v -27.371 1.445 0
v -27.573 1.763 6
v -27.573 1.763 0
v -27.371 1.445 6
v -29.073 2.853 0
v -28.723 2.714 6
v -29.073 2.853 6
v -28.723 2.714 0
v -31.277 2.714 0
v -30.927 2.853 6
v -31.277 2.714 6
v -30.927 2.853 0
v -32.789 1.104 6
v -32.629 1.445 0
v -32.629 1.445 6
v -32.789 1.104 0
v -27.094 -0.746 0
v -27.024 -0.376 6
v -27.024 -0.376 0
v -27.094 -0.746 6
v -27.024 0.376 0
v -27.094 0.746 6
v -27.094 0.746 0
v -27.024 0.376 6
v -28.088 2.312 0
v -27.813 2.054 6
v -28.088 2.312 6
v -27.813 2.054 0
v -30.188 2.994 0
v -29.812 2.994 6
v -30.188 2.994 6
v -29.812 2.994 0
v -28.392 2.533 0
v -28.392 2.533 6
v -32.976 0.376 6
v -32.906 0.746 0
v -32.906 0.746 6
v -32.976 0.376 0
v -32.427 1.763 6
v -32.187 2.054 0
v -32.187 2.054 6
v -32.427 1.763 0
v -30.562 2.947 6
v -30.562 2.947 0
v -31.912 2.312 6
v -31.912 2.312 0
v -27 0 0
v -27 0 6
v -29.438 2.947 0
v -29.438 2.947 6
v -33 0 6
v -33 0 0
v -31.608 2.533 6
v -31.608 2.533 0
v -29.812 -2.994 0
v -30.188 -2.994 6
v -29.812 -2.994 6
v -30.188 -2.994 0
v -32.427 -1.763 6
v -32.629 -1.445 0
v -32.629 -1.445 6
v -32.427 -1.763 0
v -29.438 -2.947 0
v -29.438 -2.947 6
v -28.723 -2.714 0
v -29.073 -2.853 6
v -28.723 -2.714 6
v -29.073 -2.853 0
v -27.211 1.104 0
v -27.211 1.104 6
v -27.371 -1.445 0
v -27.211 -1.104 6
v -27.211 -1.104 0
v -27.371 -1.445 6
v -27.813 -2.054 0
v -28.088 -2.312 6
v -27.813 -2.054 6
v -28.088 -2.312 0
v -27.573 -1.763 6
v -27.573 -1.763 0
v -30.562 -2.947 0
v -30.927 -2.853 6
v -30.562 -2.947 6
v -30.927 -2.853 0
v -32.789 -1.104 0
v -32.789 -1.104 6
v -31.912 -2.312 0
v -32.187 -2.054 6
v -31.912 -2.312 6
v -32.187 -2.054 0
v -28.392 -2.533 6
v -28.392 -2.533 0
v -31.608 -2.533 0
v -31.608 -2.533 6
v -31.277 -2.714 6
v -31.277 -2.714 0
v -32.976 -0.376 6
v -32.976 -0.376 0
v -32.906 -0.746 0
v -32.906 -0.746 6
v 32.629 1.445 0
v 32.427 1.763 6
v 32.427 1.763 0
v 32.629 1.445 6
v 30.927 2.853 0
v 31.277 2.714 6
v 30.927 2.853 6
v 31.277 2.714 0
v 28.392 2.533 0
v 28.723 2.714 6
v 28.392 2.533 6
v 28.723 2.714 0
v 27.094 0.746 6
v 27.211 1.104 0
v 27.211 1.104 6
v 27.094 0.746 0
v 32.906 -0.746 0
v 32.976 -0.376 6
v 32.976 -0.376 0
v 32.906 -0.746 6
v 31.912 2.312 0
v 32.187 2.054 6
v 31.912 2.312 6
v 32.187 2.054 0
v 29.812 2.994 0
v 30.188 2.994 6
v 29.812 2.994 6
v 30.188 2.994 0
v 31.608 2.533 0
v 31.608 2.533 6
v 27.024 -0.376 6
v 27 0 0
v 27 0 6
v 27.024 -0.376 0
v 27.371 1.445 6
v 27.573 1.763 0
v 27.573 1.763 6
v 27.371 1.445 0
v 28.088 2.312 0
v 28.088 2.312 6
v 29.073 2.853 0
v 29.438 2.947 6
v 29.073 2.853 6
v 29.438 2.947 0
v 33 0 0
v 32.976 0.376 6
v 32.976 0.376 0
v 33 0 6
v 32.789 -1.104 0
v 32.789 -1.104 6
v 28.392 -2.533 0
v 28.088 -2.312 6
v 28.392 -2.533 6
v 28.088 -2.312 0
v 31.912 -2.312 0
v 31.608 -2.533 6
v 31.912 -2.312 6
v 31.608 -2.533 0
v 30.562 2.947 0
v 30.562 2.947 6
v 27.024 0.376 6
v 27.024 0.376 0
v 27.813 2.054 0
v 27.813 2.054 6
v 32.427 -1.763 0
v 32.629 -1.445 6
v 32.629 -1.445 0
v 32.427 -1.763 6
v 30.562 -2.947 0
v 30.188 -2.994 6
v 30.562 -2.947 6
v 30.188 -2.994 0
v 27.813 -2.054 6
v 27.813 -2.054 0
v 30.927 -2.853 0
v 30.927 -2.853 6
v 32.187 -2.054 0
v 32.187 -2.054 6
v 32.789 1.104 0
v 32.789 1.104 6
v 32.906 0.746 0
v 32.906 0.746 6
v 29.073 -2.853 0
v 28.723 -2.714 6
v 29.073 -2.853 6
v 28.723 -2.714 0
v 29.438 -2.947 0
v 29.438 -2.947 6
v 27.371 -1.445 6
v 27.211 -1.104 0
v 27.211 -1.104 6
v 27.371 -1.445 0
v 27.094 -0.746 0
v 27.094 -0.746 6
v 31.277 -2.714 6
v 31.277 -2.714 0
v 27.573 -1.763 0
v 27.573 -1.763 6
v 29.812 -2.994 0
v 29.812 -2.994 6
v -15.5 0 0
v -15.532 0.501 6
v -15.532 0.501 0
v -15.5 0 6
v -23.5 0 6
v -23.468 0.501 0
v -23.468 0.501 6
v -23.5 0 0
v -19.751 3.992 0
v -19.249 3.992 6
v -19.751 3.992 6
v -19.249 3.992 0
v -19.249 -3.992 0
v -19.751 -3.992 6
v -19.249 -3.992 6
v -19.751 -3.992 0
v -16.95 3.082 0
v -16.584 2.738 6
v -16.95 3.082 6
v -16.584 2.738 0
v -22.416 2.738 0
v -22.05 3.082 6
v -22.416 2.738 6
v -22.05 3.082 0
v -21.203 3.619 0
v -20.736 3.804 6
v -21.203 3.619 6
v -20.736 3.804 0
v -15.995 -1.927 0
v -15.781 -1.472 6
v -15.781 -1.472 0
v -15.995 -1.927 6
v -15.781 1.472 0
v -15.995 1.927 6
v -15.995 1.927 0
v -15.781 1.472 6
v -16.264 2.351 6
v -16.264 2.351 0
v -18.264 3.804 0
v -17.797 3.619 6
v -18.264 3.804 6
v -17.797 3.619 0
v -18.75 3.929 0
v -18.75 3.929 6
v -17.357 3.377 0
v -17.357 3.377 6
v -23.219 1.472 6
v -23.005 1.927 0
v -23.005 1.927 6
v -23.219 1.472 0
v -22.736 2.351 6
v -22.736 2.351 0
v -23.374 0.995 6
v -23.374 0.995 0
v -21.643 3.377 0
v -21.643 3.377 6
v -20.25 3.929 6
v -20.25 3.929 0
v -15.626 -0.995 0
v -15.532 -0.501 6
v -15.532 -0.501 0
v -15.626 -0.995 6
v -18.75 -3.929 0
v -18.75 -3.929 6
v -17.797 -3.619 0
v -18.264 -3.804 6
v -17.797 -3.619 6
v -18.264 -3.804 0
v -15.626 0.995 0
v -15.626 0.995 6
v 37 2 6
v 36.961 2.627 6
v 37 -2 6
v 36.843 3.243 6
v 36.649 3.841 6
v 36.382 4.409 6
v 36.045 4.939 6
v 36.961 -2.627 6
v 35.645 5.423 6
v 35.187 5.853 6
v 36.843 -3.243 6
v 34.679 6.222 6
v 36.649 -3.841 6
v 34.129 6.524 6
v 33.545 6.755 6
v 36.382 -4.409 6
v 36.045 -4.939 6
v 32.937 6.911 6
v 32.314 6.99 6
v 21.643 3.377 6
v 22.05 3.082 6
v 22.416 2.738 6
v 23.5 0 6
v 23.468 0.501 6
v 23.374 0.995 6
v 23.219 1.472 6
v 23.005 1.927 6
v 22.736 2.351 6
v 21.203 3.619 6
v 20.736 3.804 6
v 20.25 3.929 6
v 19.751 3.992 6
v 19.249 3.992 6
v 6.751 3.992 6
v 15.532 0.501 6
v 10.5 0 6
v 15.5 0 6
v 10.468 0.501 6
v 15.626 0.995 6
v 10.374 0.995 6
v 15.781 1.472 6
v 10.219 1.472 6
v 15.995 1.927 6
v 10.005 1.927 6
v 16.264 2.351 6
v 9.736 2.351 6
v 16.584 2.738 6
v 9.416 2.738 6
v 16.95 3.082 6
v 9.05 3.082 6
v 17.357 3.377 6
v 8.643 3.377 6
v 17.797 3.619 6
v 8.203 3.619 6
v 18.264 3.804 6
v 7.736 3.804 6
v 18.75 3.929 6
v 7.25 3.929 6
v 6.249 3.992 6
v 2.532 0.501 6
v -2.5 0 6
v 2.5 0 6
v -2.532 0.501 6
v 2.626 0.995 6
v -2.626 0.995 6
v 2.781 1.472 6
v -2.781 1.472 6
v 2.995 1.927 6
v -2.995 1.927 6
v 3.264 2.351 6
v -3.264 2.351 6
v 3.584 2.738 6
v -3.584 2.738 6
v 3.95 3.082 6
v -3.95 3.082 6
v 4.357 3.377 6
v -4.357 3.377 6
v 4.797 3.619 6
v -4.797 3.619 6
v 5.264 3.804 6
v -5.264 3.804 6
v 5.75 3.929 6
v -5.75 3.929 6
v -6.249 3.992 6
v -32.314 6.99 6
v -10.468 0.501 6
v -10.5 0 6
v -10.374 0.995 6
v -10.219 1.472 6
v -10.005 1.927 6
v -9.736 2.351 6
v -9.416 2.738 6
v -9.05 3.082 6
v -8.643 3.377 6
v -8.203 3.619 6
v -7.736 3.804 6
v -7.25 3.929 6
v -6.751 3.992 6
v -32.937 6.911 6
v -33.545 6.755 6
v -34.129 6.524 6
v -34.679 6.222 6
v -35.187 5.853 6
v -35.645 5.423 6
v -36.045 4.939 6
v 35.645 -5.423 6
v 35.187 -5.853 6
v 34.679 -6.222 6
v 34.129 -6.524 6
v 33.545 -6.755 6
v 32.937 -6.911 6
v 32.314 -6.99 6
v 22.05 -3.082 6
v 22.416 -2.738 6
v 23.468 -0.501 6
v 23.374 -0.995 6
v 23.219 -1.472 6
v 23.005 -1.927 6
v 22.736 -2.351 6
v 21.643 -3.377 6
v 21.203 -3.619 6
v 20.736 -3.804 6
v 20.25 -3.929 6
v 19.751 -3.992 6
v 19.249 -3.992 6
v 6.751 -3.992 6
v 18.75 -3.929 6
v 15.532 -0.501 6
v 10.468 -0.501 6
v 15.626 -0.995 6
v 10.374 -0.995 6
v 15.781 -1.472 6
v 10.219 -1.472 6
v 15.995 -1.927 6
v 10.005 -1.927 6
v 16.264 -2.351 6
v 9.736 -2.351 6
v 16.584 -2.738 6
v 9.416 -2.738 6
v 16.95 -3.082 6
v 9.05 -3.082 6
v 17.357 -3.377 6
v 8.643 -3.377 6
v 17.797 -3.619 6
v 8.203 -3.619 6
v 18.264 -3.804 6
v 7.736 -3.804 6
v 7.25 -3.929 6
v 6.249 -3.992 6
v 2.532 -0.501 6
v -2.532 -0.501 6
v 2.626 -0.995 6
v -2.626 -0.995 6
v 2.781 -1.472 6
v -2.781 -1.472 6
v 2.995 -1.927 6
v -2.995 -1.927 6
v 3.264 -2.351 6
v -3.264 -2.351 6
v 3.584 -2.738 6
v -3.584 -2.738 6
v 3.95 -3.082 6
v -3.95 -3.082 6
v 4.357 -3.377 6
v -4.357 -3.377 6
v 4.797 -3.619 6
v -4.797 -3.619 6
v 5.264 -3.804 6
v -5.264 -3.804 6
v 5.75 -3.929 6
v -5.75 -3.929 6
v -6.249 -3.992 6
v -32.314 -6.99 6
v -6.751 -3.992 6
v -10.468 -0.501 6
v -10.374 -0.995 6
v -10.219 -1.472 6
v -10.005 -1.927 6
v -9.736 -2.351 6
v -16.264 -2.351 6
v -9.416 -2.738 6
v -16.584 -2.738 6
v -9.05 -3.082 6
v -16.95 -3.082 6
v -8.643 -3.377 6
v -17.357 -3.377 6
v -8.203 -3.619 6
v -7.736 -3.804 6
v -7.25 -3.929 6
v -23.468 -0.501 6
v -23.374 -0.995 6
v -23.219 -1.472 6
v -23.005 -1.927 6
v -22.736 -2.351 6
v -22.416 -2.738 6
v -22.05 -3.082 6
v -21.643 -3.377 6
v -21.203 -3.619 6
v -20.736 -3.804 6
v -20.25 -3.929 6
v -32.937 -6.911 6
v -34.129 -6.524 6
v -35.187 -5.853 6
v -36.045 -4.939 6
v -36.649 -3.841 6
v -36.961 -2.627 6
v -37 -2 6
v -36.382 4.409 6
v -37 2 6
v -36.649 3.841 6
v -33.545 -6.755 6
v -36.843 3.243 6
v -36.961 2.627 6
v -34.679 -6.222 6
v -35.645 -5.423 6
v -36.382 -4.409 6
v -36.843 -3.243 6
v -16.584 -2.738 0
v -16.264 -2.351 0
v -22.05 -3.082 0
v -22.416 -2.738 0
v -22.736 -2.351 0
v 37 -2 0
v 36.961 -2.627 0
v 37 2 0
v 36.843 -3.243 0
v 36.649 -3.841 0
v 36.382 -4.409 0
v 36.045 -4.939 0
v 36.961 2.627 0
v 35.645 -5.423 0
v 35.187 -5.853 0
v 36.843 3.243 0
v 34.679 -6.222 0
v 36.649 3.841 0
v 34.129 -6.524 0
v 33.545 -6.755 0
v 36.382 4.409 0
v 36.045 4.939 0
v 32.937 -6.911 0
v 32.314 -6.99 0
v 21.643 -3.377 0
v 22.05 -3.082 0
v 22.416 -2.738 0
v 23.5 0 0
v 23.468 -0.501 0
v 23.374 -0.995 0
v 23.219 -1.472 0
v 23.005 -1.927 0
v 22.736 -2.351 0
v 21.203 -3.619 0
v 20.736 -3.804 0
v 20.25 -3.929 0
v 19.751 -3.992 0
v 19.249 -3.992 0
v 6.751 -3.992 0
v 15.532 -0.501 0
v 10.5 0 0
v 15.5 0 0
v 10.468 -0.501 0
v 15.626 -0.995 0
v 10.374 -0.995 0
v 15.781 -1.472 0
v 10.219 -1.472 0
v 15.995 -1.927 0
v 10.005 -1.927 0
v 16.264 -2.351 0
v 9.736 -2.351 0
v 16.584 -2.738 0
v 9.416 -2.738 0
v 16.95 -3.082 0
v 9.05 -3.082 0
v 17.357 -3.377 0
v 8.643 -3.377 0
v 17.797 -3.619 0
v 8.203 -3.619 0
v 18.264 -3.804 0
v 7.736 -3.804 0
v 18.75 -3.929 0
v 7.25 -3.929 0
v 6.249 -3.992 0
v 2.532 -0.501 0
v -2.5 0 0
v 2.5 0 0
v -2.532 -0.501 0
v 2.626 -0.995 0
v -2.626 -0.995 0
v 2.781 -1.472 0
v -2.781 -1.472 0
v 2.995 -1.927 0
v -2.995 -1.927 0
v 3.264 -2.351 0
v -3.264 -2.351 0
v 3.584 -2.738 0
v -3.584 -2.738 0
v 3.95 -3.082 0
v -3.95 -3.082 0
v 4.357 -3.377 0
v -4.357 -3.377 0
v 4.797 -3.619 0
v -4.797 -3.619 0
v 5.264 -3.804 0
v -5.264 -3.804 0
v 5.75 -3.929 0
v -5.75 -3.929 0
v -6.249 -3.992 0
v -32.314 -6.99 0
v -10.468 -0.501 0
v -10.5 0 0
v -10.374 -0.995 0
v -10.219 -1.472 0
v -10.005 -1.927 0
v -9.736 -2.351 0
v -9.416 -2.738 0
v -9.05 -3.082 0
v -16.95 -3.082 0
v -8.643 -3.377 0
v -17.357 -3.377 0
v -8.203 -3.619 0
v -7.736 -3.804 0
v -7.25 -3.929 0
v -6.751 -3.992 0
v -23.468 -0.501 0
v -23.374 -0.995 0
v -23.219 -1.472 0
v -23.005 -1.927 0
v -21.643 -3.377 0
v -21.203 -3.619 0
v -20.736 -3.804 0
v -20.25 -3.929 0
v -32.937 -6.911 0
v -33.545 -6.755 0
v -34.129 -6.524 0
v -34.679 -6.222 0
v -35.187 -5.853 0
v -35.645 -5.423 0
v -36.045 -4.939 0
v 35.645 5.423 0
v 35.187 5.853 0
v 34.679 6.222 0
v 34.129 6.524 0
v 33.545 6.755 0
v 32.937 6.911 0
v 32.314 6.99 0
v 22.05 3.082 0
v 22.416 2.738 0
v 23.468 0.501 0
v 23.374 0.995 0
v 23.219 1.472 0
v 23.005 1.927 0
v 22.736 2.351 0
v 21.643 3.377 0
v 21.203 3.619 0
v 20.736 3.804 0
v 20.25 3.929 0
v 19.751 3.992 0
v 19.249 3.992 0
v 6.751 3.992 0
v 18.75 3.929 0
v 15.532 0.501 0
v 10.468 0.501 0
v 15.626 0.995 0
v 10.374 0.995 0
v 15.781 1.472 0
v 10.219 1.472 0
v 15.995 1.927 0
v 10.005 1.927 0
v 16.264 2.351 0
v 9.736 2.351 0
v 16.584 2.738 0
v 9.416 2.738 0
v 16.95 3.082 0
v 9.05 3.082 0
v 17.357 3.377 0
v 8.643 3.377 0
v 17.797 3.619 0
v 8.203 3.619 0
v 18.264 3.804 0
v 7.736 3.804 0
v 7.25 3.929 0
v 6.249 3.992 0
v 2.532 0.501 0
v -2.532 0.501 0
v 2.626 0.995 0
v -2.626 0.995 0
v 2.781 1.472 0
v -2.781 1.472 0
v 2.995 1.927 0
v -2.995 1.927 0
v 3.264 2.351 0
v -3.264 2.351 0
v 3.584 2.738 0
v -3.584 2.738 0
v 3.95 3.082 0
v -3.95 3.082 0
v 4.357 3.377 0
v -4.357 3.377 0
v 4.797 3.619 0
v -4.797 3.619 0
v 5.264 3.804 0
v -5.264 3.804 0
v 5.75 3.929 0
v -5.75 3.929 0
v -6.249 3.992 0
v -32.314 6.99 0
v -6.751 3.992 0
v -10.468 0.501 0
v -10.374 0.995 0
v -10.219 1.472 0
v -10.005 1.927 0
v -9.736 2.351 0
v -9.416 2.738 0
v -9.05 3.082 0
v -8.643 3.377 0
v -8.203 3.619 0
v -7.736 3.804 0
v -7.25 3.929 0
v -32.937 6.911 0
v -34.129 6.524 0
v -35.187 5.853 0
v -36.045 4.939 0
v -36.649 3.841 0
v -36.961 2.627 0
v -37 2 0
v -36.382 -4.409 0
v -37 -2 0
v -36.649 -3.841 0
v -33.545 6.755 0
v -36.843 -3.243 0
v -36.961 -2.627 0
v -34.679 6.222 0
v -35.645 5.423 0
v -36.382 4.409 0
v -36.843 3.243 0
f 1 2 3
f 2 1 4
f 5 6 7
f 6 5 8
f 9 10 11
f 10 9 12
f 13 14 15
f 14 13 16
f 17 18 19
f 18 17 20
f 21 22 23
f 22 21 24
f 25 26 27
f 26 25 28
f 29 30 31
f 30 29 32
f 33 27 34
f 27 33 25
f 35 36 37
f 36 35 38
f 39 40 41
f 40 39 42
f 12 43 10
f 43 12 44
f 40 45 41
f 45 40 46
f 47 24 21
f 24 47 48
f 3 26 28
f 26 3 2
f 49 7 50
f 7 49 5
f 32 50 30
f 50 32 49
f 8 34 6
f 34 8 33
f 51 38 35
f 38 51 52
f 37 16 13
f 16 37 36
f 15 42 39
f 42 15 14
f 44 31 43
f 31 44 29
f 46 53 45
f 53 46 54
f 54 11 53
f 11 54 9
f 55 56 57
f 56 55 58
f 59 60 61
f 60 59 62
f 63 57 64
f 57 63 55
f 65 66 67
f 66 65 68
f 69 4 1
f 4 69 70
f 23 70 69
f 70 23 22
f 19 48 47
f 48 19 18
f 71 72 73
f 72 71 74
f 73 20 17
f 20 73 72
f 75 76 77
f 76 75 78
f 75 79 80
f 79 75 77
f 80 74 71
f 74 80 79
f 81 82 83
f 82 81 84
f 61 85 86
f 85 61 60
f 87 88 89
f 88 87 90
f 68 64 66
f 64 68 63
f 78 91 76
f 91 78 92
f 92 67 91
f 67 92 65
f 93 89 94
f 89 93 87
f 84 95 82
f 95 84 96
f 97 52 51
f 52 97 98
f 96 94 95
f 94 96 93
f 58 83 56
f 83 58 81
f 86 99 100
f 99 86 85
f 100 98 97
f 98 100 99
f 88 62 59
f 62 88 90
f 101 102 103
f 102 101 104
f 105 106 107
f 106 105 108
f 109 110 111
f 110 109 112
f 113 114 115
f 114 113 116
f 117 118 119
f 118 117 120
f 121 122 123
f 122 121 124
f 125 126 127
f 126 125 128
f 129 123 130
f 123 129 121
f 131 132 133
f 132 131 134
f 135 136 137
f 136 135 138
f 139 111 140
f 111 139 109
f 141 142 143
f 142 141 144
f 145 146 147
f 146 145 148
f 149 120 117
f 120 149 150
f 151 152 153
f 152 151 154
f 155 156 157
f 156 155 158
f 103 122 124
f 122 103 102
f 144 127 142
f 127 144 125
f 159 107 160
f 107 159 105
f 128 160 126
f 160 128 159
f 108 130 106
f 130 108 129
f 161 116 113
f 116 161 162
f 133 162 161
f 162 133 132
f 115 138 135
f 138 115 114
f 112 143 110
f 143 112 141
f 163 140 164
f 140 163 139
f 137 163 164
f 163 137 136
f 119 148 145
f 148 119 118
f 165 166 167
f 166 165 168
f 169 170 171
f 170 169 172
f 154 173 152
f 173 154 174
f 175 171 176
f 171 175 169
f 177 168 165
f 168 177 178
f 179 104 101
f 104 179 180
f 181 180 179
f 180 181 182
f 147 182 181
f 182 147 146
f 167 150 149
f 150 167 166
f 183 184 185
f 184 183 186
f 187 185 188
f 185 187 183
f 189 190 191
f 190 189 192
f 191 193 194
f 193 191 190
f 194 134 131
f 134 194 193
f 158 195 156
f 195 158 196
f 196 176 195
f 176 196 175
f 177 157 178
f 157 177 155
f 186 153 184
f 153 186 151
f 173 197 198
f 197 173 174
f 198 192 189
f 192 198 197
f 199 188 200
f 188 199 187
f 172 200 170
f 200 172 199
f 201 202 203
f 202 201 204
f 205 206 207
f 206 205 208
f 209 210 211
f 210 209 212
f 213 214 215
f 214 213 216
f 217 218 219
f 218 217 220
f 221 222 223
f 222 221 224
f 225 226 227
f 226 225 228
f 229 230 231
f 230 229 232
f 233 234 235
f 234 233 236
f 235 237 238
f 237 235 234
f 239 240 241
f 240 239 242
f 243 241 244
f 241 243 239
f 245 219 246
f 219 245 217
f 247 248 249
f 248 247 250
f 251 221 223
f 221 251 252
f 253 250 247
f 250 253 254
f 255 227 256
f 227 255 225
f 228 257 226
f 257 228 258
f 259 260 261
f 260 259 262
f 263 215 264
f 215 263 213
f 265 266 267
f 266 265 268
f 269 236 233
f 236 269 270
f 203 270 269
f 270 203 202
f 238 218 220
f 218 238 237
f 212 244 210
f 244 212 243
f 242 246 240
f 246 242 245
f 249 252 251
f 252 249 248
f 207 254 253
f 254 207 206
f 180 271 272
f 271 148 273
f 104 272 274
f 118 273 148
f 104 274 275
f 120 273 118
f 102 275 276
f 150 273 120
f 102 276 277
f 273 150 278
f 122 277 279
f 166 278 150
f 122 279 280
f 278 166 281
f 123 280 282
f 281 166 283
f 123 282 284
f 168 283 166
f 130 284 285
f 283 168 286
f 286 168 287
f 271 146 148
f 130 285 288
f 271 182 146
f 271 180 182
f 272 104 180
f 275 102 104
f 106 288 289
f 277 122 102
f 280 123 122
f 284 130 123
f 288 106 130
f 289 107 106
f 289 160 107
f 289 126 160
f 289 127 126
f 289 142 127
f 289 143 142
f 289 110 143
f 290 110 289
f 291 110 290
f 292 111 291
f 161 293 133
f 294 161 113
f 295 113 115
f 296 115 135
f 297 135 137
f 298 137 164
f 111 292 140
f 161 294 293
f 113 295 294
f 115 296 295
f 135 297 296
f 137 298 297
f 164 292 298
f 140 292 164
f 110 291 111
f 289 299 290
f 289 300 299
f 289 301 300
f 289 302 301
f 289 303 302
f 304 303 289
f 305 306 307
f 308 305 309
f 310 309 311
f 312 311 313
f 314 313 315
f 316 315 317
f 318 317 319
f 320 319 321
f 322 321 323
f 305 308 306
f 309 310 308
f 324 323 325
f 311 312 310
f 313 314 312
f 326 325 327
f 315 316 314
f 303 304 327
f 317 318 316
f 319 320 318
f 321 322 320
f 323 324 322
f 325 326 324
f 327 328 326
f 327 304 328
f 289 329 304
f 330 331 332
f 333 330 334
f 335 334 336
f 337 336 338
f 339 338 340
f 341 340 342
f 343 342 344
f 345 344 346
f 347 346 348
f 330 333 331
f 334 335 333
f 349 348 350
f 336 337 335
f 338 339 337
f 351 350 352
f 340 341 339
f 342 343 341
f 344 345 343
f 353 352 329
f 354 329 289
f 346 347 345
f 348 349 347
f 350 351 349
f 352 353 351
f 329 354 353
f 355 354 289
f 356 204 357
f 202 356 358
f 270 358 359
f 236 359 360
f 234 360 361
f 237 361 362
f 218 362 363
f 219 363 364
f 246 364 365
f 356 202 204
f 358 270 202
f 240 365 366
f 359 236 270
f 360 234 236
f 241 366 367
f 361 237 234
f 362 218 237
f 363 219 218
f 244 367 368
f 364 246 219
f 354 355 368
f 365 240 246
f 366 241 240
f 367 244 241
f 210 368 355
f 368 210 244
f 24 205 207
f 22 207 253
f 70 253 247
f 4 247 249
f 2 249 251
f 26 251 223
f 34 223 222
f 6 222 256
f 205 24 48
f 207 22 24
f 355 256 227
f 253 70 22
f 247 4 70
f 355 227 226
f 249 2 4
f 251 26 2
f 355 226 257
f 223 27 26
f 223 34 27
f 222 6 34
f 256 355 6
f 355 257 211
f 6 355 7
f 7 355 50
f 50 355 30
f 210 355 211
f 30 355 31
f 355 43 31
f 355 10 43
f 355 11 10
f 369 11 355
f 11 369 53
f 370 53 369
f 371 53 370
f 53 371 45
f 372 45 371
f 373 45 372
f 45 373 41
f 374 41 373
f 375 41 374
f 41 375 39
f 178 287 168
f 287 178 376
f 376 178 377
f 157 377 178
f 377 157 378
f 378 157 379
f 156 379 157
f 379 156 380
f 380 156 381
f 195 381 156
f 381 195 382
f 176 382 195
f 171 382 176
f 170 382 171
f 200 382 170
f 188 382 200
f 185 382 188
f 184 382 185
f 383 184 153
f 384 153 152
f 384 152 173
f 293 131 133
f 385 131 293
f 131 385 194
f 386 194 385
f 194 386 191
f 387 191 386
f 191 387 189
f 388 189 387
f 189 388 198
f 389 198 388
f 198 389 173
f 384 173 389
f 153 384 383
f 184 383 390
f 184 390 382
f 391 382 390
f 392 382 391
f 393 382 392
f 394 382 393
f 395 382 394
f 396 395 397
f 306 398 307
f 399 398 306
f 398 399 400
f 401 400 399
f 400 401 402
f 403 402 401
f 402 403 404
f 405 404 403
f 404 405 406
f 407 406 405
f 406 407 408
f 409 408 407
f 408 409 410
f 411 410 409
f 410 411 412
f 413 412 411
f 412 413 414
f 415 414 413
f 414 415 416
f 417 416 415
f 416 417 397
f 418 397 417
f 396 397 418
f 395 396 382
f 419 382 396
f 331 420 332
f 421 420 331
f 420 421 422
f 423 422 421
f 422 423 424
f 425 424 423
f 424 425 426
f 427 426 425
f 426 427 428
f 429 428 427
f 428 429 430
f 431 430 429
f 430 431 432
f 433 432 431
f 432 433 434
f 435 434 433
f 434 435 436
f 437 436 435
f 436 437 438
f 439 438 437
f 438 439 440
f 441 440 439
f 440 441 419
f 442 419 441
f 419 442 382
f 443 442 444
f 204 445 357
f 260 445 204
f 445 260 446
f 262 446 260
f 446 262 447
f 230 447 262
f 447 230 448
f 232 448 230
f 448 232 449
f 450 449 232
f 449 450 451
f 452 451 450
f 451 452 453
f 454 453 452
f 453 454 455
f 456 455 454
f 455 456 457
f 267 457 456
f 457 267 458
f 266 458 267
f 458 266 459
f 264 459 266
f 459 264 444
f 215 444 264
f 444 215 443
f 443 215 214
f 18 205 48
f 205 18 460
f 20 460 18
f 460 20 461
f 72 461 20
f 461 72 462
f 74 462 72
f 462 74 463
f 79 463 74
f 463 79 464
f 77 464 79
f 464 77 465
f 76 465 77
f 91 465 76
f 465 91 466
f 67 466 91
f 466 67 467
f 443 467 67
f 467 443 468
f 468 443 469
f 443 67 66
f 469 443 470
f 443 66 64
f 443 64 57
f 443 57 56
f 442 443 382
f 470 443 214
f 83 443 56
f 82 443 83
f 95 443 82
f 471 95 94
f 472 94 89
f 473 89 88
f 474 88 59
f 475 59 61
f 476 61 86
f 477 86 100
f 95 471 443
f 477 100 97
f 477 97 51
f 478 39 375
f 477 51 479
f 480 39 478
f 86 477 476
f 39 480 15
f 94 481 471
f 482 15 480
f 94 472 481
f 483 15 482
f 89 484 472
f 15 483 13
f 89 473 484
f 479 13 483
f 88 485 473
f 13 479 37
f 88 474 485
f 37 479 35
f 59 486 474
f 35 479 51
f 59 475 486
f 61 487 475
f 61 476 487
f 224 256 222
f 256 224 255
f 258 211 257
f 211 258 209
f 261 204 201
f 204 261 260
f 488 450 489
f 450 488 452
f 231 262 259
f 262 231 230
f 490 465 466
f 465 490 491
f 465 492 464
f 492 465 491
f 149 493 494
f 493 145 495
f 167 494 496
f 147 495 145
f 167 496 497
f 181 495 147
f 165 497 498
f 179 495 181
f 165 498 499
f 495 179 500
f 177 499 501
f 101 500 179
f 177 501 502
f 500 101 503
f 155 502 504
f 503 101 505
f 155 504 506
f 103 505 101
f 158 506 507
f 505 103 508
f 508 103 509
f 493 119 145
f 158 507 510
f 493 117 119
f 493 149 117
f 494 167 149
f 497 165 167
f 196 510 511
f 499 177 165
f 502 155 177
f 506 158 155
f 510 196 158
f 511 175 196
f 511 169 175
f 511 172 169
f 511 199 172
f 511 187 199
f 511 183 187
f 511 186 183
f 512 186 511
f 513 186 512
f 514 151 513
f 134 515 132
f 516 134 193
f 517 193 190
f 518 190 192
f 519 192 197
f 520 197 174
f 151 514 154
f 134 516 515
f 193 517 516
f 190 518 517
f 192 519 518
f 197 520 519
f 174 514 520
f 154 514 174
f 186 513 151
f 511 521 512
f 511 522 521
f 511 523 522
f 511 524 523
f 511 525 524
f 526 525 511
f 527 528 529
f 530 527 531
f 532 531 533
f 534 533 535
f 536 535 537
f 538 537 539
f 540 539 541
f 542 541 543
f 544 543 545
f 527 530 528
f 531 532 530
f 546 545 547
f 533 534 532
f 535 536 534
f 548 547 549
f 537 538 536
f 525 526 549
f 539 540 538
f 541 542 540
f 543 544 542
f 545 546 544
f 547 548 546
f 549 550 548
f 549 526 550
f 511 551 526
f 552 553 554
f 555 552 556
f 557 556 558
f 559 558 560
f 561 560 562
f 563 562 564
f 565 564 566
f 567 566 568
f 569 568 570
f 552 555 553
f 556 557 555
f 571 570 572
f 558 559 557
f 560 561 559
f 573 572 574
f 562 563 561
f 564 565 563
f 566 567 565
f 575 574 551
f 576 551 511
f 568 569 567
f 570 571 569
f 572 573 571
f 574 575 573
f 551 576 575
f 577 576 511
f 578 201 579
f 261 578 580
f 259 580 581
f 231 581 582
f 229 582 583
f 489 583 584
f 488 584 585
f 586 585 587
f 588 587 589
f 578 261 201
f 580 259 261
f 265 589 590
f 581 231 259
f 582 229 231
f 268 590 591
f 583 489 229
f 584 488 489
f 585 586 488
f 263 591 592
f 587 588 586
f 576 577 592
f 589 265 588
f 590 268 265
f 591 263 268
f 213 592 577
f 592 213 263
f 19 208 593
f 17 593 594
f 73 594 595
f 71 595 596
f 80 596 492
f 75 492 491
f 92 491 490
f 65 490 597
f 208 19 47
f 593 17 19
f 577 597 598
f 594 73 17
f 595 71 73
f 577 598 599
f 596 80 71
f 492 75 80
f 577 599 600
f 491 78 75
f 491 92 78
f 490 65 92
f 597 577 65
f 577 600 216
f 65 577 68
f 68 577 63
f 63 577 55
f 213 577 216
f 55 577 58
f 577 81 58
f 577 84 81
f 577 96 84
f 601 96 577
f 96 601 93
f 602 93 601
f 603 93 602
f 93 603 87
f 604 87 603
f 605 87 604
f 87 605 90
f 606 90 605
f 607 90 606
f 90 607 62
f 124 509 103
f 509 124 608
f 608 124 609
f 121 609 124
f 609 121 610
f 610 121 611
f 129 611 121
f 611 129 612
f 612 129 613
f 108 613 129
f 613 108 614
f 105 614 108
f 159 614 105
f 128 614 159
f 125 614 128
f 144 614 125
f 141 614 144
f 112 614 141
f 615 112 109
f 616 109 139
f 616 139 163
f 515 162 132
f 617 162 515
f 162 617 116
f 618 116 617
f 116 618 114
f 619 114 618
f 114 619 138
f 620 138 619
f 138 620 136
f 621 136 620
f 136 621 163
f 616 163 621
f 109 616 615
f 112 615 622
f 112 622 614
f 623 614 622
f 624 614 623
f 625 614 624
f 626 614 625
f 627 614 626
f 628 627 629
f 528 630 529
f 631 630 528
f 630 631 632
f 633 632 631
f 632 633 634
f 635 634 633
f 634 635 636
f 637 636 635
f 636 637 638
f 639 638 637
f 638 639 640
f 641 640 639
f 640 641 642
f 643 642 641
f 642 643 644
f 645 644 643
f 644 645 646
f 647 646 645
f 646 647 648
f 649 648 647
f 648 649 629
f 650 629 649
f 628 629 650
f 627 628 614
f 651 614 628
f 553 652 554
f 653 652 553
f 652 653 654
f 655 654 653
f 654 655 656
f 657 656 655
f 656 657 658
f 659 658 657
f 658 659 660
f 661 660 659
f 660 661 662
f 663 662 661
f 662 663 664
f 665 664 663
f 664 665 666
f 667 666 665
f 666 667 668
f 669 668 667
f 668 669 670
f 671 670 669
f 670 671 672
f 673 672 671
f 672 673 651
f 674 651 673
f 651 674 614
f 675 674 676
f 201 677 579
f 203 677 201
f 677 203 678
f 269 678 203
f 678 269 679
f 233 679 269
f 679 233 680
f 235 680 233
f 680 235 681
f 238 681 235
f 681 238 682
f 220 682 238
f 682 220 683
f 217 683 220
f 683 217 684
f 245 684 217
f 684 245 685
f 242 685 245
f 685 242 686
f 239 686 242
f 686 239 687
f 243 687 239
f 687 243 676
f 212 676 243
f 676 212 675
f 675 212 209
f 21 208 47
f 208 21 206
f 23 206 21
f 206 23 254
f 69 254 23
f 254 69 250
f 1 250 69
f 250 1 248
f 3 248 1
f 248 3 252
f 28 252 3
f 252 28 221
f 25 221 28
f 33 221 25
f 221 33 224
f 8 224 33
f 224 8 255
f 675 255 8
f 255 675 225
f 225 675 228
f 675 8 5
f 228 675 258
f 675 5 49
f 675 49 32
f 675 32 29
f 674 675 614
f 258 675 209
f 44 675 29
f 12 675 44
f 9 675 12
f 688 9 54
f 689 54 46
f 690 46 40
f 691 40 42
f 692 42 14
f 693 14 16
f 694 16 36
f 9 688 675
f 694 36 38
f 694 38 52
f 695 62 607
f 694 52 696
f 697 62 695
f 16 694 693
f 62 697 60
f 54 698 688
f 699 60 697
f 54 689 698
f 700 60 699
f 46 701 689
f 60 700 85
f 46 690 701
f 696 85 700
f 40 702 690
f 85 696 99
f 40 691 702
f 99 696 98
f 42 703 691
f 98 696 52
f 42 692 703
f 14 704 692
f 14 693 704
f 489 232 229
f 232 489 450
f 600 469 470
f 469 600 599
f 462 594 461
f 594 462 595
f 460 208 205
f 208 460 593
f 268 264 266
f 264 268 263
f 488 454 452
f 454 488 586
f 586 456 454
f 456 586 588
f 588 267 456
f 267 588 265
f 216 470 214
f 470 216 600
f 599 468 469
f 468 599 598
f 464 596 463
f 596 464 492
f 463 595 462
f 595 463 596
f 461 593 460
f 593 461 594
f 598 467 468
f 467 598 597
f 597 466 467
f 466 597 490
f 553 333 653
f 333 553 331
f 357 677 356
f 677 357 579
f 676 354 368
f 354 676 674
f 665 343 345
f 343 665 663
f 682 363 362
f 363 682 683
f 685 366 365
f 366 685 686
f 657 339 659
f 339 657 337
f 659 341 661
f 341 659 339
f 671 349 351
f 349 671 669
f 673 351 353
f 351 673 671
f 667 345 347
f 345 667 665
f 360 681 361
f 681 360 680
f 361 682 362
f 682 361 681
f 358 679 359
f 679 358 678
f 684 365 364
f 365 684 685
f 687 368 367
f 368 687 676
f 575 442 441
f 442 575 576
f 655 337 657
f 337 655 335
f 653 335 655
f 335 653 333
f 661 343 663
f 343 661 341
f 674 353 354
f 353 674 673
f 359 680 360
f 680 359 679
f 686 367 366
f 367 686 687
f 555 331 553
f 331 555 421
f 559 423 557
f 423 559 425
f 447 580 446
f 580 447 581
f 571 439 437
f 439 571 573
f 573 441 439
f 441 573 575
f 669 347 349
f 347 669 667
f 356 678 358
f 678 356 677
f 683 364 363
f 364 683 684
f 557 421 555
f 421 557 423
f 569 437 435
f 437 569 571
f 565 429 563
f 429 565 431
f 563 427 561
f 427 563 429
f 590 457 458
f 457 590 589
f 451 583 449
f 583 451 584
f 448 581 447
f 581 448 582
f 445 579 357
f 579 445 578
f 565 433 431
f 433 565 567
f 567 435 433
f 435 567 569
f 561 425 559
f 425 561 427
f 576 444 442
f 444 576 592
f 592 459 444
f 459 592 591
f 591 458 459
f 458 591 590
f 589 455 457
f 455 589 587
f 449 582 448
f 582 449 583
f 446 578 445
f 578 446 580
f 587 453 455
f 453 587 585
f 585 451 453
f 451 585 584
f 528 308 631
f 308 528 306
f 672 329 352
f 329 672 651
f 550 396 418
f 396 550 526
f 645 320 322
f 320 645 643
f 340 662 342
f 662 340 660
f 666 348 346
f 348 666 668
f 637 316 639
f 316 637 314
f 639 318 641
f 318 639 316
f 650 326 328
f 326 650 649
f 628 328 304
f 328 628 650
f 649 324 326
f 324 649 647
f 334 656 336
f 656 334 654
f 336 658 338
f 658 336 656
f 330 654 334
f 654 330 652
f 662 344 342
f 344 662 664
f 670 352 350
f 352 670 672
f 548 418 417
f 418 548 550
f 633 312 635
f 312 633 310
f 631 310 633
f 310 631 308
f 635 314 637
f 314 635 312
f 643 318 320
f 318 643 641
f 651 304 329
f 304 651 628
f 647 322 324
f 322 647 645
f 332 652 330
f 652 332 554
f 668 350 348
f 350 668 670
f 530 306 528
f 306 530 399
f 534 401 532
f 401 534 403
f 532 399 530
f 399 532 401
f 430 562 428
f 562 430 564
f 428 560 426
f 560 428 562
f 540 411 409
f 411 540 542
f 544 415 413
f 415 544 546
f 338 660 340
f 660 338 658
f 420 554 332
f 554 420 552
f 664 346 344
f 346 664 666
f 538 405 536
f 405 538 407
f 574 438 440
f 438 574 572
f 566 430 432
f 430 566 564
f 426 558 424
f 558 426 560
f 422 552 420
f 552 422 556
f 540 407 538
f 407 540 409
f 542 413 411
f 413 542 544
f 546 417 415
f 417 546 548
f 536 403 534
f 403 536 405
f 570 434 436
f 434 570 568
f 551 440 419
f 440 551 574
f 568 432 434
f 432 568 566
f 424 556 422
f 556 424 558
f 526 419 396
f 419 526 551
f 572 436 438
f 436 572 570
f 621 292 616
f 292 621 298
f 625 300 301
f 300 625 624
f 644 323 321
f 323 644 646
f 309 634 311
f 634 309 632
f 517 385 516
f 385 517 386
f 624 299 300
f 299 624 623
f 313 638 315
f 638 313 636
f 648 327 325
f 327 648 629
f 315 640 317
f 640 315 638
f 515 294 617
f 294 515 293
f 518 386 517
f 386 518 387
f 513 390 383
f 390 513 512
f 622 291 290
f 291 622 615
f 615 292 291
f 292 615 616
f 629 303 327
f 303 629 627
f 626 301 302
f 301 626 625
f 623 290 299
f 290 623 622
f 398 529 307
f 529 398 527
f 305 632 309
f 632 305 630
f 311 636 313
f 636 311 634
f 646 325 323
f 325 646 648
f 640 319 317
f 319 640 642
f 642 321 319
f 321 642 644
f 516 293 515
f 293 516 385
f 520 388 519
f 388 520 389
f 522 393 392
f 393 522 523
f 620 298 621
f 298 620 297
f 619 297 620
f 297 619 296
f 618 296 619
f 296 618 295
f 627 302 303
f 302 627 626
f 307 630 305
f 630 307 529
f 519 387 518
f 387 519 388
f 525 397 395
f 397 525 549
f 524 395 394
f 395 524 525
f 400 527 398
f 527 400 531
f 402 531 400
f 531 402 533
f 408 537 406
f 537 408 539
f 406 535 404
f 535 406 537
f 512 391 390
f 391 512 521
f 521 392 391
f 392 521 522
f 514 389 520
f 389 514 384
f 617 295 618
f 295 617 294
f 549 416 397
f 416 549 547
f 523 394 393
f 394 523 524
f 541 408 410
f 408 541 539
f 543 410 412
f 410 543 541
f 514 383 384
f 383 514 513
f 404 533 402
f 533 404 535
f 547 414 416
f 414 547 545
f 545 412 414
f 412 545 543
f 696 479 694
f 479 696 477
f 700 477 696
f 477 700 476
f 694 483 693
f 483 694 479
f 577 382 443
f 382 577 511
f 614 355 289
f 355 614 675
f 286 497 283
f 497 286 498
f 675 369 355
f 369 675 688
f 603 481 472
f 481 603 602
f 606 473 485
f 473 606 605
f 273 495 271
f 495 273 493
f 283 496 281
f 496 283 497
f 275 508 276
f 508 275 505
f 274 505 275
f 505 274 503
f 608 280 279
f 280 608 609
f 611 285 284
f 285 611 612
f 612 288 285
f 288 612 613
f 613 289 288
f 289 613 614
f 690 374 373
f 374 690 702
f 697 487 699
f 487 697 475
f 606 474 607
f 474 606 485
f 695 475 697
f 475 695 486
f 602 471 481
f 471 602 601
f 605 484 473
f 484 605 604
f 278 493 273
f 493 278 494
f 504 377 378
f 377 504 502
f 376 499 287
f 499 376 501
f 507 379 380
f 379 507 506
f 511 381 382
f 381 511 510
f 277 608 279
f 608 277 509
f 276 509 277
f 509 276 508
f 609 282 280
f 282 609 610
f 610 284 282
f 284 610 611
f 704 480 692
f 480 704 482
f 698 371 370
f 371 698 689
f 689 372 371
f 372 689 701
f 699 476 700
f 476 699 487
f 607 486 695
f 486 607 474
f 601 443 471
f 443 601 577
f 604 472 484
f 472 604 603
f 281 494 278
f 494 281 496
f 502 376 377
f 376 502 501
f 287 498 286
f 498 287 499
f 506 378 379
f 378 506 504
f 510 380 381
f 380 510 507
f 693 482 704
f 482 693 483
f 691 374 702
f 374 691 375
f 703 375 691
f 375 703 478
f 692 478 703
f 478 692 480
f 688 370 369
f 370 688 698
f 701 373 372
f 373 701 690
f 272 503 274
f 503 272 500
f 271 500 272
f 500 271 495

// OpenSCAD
$fn = 50;


difference() {
	union() {
		hull() {
			translate(v = [-32.0000000000, 2.0000000000, 0]) {
				cylinder(h = 6, r = 5);
			}
			translate(v = [32.0000000000, 2.0000000000, 0]) {
				cylinder(h = 6, r = 5);
			}
			translate(v = [-32.0000000000, -2.0000000000, 0]) {
				cylinder(h = 6, r = 5);
			}
			translate(v = [32.0000000000, -2.0000000000, 0]) {
				cylinder(h = 6, r = 5);
			}
		}
	}
	union() {
		#translate(v = [-30.0000000000, 0.0000000000, 0]) {
			cylinder(h = 6, r = 3.0000000000);
		}
		#translate(v = [30.0000000000, 0.0000000000, 0]) {
			cylinder(h = 6, r = 3.0000000000);
		}
		#translate(v = [-30.0000000000, 0.0000000000, -100.0000000000]) {
			cylinder(h = 200, r = 3.0000000000);
		}
		#translate(v = [-30.0000000000, 0.0000000000, -100.0000000000]) {
			cylinder(h = 200, r = 3.0000000000);
		}
		#translate(v = [30.0000000000, 0.0000000000, -100.0000000000]) {
			cylinder(h = 200, r = 3.0000000000);
		}
		#translate(v = [30.0000000000, 0.0000000000, -100.0000000000]) {
			cylinder(h = 200, r = 3.0000000000);
		}
		#translate(v = [-30.0000000000, 0.0000000000, 0]) {
			cylinder(h = 6, r = 1.5000000000);
		}
		#translate(v = [30.0000000000, 0.0000000000, 0]) {
			cylinder(h = 6, r = 1.5000000000);
		}
		#translate(v = [-30.0000000000, 0.0000000000, 0]) {
			cylinder(h = 6, r = 1.5000000000);
		}
		#translate(v = [30.0000000000, 0.0000000000, 0]) {
			cylinder(h = 6, r = 1.5000000000);
		}
		#translate(v = [-30.0000000000, 0.0000000000, 0]) {
			cylinder(h = 6, r = 1.5000000000);
		}
		#translate(v = [30.0000000000, 0.0000000000, 0]) {
			cylinder(h = 6, r = 1.5000000000);
		}
		#translate(v = [-19.5000000000, 0, 0]) {
			cylinder(h = 6, r = 4.0000000000);
		}
		#translate(v = [-6.5000000000, 0, 0]) {
			cylinder(h = 6, r = 4.0000000000);
		}
		#translate(v = [6.5000000000, 0, 0]) {
			cylinder(h = 6, r = 4.0000000000);
		}
		#translate(v = [19.5000000000, 0, 0]) {
			cylinder(h = 6, r = 4.0000000000);
		}
	}
}
